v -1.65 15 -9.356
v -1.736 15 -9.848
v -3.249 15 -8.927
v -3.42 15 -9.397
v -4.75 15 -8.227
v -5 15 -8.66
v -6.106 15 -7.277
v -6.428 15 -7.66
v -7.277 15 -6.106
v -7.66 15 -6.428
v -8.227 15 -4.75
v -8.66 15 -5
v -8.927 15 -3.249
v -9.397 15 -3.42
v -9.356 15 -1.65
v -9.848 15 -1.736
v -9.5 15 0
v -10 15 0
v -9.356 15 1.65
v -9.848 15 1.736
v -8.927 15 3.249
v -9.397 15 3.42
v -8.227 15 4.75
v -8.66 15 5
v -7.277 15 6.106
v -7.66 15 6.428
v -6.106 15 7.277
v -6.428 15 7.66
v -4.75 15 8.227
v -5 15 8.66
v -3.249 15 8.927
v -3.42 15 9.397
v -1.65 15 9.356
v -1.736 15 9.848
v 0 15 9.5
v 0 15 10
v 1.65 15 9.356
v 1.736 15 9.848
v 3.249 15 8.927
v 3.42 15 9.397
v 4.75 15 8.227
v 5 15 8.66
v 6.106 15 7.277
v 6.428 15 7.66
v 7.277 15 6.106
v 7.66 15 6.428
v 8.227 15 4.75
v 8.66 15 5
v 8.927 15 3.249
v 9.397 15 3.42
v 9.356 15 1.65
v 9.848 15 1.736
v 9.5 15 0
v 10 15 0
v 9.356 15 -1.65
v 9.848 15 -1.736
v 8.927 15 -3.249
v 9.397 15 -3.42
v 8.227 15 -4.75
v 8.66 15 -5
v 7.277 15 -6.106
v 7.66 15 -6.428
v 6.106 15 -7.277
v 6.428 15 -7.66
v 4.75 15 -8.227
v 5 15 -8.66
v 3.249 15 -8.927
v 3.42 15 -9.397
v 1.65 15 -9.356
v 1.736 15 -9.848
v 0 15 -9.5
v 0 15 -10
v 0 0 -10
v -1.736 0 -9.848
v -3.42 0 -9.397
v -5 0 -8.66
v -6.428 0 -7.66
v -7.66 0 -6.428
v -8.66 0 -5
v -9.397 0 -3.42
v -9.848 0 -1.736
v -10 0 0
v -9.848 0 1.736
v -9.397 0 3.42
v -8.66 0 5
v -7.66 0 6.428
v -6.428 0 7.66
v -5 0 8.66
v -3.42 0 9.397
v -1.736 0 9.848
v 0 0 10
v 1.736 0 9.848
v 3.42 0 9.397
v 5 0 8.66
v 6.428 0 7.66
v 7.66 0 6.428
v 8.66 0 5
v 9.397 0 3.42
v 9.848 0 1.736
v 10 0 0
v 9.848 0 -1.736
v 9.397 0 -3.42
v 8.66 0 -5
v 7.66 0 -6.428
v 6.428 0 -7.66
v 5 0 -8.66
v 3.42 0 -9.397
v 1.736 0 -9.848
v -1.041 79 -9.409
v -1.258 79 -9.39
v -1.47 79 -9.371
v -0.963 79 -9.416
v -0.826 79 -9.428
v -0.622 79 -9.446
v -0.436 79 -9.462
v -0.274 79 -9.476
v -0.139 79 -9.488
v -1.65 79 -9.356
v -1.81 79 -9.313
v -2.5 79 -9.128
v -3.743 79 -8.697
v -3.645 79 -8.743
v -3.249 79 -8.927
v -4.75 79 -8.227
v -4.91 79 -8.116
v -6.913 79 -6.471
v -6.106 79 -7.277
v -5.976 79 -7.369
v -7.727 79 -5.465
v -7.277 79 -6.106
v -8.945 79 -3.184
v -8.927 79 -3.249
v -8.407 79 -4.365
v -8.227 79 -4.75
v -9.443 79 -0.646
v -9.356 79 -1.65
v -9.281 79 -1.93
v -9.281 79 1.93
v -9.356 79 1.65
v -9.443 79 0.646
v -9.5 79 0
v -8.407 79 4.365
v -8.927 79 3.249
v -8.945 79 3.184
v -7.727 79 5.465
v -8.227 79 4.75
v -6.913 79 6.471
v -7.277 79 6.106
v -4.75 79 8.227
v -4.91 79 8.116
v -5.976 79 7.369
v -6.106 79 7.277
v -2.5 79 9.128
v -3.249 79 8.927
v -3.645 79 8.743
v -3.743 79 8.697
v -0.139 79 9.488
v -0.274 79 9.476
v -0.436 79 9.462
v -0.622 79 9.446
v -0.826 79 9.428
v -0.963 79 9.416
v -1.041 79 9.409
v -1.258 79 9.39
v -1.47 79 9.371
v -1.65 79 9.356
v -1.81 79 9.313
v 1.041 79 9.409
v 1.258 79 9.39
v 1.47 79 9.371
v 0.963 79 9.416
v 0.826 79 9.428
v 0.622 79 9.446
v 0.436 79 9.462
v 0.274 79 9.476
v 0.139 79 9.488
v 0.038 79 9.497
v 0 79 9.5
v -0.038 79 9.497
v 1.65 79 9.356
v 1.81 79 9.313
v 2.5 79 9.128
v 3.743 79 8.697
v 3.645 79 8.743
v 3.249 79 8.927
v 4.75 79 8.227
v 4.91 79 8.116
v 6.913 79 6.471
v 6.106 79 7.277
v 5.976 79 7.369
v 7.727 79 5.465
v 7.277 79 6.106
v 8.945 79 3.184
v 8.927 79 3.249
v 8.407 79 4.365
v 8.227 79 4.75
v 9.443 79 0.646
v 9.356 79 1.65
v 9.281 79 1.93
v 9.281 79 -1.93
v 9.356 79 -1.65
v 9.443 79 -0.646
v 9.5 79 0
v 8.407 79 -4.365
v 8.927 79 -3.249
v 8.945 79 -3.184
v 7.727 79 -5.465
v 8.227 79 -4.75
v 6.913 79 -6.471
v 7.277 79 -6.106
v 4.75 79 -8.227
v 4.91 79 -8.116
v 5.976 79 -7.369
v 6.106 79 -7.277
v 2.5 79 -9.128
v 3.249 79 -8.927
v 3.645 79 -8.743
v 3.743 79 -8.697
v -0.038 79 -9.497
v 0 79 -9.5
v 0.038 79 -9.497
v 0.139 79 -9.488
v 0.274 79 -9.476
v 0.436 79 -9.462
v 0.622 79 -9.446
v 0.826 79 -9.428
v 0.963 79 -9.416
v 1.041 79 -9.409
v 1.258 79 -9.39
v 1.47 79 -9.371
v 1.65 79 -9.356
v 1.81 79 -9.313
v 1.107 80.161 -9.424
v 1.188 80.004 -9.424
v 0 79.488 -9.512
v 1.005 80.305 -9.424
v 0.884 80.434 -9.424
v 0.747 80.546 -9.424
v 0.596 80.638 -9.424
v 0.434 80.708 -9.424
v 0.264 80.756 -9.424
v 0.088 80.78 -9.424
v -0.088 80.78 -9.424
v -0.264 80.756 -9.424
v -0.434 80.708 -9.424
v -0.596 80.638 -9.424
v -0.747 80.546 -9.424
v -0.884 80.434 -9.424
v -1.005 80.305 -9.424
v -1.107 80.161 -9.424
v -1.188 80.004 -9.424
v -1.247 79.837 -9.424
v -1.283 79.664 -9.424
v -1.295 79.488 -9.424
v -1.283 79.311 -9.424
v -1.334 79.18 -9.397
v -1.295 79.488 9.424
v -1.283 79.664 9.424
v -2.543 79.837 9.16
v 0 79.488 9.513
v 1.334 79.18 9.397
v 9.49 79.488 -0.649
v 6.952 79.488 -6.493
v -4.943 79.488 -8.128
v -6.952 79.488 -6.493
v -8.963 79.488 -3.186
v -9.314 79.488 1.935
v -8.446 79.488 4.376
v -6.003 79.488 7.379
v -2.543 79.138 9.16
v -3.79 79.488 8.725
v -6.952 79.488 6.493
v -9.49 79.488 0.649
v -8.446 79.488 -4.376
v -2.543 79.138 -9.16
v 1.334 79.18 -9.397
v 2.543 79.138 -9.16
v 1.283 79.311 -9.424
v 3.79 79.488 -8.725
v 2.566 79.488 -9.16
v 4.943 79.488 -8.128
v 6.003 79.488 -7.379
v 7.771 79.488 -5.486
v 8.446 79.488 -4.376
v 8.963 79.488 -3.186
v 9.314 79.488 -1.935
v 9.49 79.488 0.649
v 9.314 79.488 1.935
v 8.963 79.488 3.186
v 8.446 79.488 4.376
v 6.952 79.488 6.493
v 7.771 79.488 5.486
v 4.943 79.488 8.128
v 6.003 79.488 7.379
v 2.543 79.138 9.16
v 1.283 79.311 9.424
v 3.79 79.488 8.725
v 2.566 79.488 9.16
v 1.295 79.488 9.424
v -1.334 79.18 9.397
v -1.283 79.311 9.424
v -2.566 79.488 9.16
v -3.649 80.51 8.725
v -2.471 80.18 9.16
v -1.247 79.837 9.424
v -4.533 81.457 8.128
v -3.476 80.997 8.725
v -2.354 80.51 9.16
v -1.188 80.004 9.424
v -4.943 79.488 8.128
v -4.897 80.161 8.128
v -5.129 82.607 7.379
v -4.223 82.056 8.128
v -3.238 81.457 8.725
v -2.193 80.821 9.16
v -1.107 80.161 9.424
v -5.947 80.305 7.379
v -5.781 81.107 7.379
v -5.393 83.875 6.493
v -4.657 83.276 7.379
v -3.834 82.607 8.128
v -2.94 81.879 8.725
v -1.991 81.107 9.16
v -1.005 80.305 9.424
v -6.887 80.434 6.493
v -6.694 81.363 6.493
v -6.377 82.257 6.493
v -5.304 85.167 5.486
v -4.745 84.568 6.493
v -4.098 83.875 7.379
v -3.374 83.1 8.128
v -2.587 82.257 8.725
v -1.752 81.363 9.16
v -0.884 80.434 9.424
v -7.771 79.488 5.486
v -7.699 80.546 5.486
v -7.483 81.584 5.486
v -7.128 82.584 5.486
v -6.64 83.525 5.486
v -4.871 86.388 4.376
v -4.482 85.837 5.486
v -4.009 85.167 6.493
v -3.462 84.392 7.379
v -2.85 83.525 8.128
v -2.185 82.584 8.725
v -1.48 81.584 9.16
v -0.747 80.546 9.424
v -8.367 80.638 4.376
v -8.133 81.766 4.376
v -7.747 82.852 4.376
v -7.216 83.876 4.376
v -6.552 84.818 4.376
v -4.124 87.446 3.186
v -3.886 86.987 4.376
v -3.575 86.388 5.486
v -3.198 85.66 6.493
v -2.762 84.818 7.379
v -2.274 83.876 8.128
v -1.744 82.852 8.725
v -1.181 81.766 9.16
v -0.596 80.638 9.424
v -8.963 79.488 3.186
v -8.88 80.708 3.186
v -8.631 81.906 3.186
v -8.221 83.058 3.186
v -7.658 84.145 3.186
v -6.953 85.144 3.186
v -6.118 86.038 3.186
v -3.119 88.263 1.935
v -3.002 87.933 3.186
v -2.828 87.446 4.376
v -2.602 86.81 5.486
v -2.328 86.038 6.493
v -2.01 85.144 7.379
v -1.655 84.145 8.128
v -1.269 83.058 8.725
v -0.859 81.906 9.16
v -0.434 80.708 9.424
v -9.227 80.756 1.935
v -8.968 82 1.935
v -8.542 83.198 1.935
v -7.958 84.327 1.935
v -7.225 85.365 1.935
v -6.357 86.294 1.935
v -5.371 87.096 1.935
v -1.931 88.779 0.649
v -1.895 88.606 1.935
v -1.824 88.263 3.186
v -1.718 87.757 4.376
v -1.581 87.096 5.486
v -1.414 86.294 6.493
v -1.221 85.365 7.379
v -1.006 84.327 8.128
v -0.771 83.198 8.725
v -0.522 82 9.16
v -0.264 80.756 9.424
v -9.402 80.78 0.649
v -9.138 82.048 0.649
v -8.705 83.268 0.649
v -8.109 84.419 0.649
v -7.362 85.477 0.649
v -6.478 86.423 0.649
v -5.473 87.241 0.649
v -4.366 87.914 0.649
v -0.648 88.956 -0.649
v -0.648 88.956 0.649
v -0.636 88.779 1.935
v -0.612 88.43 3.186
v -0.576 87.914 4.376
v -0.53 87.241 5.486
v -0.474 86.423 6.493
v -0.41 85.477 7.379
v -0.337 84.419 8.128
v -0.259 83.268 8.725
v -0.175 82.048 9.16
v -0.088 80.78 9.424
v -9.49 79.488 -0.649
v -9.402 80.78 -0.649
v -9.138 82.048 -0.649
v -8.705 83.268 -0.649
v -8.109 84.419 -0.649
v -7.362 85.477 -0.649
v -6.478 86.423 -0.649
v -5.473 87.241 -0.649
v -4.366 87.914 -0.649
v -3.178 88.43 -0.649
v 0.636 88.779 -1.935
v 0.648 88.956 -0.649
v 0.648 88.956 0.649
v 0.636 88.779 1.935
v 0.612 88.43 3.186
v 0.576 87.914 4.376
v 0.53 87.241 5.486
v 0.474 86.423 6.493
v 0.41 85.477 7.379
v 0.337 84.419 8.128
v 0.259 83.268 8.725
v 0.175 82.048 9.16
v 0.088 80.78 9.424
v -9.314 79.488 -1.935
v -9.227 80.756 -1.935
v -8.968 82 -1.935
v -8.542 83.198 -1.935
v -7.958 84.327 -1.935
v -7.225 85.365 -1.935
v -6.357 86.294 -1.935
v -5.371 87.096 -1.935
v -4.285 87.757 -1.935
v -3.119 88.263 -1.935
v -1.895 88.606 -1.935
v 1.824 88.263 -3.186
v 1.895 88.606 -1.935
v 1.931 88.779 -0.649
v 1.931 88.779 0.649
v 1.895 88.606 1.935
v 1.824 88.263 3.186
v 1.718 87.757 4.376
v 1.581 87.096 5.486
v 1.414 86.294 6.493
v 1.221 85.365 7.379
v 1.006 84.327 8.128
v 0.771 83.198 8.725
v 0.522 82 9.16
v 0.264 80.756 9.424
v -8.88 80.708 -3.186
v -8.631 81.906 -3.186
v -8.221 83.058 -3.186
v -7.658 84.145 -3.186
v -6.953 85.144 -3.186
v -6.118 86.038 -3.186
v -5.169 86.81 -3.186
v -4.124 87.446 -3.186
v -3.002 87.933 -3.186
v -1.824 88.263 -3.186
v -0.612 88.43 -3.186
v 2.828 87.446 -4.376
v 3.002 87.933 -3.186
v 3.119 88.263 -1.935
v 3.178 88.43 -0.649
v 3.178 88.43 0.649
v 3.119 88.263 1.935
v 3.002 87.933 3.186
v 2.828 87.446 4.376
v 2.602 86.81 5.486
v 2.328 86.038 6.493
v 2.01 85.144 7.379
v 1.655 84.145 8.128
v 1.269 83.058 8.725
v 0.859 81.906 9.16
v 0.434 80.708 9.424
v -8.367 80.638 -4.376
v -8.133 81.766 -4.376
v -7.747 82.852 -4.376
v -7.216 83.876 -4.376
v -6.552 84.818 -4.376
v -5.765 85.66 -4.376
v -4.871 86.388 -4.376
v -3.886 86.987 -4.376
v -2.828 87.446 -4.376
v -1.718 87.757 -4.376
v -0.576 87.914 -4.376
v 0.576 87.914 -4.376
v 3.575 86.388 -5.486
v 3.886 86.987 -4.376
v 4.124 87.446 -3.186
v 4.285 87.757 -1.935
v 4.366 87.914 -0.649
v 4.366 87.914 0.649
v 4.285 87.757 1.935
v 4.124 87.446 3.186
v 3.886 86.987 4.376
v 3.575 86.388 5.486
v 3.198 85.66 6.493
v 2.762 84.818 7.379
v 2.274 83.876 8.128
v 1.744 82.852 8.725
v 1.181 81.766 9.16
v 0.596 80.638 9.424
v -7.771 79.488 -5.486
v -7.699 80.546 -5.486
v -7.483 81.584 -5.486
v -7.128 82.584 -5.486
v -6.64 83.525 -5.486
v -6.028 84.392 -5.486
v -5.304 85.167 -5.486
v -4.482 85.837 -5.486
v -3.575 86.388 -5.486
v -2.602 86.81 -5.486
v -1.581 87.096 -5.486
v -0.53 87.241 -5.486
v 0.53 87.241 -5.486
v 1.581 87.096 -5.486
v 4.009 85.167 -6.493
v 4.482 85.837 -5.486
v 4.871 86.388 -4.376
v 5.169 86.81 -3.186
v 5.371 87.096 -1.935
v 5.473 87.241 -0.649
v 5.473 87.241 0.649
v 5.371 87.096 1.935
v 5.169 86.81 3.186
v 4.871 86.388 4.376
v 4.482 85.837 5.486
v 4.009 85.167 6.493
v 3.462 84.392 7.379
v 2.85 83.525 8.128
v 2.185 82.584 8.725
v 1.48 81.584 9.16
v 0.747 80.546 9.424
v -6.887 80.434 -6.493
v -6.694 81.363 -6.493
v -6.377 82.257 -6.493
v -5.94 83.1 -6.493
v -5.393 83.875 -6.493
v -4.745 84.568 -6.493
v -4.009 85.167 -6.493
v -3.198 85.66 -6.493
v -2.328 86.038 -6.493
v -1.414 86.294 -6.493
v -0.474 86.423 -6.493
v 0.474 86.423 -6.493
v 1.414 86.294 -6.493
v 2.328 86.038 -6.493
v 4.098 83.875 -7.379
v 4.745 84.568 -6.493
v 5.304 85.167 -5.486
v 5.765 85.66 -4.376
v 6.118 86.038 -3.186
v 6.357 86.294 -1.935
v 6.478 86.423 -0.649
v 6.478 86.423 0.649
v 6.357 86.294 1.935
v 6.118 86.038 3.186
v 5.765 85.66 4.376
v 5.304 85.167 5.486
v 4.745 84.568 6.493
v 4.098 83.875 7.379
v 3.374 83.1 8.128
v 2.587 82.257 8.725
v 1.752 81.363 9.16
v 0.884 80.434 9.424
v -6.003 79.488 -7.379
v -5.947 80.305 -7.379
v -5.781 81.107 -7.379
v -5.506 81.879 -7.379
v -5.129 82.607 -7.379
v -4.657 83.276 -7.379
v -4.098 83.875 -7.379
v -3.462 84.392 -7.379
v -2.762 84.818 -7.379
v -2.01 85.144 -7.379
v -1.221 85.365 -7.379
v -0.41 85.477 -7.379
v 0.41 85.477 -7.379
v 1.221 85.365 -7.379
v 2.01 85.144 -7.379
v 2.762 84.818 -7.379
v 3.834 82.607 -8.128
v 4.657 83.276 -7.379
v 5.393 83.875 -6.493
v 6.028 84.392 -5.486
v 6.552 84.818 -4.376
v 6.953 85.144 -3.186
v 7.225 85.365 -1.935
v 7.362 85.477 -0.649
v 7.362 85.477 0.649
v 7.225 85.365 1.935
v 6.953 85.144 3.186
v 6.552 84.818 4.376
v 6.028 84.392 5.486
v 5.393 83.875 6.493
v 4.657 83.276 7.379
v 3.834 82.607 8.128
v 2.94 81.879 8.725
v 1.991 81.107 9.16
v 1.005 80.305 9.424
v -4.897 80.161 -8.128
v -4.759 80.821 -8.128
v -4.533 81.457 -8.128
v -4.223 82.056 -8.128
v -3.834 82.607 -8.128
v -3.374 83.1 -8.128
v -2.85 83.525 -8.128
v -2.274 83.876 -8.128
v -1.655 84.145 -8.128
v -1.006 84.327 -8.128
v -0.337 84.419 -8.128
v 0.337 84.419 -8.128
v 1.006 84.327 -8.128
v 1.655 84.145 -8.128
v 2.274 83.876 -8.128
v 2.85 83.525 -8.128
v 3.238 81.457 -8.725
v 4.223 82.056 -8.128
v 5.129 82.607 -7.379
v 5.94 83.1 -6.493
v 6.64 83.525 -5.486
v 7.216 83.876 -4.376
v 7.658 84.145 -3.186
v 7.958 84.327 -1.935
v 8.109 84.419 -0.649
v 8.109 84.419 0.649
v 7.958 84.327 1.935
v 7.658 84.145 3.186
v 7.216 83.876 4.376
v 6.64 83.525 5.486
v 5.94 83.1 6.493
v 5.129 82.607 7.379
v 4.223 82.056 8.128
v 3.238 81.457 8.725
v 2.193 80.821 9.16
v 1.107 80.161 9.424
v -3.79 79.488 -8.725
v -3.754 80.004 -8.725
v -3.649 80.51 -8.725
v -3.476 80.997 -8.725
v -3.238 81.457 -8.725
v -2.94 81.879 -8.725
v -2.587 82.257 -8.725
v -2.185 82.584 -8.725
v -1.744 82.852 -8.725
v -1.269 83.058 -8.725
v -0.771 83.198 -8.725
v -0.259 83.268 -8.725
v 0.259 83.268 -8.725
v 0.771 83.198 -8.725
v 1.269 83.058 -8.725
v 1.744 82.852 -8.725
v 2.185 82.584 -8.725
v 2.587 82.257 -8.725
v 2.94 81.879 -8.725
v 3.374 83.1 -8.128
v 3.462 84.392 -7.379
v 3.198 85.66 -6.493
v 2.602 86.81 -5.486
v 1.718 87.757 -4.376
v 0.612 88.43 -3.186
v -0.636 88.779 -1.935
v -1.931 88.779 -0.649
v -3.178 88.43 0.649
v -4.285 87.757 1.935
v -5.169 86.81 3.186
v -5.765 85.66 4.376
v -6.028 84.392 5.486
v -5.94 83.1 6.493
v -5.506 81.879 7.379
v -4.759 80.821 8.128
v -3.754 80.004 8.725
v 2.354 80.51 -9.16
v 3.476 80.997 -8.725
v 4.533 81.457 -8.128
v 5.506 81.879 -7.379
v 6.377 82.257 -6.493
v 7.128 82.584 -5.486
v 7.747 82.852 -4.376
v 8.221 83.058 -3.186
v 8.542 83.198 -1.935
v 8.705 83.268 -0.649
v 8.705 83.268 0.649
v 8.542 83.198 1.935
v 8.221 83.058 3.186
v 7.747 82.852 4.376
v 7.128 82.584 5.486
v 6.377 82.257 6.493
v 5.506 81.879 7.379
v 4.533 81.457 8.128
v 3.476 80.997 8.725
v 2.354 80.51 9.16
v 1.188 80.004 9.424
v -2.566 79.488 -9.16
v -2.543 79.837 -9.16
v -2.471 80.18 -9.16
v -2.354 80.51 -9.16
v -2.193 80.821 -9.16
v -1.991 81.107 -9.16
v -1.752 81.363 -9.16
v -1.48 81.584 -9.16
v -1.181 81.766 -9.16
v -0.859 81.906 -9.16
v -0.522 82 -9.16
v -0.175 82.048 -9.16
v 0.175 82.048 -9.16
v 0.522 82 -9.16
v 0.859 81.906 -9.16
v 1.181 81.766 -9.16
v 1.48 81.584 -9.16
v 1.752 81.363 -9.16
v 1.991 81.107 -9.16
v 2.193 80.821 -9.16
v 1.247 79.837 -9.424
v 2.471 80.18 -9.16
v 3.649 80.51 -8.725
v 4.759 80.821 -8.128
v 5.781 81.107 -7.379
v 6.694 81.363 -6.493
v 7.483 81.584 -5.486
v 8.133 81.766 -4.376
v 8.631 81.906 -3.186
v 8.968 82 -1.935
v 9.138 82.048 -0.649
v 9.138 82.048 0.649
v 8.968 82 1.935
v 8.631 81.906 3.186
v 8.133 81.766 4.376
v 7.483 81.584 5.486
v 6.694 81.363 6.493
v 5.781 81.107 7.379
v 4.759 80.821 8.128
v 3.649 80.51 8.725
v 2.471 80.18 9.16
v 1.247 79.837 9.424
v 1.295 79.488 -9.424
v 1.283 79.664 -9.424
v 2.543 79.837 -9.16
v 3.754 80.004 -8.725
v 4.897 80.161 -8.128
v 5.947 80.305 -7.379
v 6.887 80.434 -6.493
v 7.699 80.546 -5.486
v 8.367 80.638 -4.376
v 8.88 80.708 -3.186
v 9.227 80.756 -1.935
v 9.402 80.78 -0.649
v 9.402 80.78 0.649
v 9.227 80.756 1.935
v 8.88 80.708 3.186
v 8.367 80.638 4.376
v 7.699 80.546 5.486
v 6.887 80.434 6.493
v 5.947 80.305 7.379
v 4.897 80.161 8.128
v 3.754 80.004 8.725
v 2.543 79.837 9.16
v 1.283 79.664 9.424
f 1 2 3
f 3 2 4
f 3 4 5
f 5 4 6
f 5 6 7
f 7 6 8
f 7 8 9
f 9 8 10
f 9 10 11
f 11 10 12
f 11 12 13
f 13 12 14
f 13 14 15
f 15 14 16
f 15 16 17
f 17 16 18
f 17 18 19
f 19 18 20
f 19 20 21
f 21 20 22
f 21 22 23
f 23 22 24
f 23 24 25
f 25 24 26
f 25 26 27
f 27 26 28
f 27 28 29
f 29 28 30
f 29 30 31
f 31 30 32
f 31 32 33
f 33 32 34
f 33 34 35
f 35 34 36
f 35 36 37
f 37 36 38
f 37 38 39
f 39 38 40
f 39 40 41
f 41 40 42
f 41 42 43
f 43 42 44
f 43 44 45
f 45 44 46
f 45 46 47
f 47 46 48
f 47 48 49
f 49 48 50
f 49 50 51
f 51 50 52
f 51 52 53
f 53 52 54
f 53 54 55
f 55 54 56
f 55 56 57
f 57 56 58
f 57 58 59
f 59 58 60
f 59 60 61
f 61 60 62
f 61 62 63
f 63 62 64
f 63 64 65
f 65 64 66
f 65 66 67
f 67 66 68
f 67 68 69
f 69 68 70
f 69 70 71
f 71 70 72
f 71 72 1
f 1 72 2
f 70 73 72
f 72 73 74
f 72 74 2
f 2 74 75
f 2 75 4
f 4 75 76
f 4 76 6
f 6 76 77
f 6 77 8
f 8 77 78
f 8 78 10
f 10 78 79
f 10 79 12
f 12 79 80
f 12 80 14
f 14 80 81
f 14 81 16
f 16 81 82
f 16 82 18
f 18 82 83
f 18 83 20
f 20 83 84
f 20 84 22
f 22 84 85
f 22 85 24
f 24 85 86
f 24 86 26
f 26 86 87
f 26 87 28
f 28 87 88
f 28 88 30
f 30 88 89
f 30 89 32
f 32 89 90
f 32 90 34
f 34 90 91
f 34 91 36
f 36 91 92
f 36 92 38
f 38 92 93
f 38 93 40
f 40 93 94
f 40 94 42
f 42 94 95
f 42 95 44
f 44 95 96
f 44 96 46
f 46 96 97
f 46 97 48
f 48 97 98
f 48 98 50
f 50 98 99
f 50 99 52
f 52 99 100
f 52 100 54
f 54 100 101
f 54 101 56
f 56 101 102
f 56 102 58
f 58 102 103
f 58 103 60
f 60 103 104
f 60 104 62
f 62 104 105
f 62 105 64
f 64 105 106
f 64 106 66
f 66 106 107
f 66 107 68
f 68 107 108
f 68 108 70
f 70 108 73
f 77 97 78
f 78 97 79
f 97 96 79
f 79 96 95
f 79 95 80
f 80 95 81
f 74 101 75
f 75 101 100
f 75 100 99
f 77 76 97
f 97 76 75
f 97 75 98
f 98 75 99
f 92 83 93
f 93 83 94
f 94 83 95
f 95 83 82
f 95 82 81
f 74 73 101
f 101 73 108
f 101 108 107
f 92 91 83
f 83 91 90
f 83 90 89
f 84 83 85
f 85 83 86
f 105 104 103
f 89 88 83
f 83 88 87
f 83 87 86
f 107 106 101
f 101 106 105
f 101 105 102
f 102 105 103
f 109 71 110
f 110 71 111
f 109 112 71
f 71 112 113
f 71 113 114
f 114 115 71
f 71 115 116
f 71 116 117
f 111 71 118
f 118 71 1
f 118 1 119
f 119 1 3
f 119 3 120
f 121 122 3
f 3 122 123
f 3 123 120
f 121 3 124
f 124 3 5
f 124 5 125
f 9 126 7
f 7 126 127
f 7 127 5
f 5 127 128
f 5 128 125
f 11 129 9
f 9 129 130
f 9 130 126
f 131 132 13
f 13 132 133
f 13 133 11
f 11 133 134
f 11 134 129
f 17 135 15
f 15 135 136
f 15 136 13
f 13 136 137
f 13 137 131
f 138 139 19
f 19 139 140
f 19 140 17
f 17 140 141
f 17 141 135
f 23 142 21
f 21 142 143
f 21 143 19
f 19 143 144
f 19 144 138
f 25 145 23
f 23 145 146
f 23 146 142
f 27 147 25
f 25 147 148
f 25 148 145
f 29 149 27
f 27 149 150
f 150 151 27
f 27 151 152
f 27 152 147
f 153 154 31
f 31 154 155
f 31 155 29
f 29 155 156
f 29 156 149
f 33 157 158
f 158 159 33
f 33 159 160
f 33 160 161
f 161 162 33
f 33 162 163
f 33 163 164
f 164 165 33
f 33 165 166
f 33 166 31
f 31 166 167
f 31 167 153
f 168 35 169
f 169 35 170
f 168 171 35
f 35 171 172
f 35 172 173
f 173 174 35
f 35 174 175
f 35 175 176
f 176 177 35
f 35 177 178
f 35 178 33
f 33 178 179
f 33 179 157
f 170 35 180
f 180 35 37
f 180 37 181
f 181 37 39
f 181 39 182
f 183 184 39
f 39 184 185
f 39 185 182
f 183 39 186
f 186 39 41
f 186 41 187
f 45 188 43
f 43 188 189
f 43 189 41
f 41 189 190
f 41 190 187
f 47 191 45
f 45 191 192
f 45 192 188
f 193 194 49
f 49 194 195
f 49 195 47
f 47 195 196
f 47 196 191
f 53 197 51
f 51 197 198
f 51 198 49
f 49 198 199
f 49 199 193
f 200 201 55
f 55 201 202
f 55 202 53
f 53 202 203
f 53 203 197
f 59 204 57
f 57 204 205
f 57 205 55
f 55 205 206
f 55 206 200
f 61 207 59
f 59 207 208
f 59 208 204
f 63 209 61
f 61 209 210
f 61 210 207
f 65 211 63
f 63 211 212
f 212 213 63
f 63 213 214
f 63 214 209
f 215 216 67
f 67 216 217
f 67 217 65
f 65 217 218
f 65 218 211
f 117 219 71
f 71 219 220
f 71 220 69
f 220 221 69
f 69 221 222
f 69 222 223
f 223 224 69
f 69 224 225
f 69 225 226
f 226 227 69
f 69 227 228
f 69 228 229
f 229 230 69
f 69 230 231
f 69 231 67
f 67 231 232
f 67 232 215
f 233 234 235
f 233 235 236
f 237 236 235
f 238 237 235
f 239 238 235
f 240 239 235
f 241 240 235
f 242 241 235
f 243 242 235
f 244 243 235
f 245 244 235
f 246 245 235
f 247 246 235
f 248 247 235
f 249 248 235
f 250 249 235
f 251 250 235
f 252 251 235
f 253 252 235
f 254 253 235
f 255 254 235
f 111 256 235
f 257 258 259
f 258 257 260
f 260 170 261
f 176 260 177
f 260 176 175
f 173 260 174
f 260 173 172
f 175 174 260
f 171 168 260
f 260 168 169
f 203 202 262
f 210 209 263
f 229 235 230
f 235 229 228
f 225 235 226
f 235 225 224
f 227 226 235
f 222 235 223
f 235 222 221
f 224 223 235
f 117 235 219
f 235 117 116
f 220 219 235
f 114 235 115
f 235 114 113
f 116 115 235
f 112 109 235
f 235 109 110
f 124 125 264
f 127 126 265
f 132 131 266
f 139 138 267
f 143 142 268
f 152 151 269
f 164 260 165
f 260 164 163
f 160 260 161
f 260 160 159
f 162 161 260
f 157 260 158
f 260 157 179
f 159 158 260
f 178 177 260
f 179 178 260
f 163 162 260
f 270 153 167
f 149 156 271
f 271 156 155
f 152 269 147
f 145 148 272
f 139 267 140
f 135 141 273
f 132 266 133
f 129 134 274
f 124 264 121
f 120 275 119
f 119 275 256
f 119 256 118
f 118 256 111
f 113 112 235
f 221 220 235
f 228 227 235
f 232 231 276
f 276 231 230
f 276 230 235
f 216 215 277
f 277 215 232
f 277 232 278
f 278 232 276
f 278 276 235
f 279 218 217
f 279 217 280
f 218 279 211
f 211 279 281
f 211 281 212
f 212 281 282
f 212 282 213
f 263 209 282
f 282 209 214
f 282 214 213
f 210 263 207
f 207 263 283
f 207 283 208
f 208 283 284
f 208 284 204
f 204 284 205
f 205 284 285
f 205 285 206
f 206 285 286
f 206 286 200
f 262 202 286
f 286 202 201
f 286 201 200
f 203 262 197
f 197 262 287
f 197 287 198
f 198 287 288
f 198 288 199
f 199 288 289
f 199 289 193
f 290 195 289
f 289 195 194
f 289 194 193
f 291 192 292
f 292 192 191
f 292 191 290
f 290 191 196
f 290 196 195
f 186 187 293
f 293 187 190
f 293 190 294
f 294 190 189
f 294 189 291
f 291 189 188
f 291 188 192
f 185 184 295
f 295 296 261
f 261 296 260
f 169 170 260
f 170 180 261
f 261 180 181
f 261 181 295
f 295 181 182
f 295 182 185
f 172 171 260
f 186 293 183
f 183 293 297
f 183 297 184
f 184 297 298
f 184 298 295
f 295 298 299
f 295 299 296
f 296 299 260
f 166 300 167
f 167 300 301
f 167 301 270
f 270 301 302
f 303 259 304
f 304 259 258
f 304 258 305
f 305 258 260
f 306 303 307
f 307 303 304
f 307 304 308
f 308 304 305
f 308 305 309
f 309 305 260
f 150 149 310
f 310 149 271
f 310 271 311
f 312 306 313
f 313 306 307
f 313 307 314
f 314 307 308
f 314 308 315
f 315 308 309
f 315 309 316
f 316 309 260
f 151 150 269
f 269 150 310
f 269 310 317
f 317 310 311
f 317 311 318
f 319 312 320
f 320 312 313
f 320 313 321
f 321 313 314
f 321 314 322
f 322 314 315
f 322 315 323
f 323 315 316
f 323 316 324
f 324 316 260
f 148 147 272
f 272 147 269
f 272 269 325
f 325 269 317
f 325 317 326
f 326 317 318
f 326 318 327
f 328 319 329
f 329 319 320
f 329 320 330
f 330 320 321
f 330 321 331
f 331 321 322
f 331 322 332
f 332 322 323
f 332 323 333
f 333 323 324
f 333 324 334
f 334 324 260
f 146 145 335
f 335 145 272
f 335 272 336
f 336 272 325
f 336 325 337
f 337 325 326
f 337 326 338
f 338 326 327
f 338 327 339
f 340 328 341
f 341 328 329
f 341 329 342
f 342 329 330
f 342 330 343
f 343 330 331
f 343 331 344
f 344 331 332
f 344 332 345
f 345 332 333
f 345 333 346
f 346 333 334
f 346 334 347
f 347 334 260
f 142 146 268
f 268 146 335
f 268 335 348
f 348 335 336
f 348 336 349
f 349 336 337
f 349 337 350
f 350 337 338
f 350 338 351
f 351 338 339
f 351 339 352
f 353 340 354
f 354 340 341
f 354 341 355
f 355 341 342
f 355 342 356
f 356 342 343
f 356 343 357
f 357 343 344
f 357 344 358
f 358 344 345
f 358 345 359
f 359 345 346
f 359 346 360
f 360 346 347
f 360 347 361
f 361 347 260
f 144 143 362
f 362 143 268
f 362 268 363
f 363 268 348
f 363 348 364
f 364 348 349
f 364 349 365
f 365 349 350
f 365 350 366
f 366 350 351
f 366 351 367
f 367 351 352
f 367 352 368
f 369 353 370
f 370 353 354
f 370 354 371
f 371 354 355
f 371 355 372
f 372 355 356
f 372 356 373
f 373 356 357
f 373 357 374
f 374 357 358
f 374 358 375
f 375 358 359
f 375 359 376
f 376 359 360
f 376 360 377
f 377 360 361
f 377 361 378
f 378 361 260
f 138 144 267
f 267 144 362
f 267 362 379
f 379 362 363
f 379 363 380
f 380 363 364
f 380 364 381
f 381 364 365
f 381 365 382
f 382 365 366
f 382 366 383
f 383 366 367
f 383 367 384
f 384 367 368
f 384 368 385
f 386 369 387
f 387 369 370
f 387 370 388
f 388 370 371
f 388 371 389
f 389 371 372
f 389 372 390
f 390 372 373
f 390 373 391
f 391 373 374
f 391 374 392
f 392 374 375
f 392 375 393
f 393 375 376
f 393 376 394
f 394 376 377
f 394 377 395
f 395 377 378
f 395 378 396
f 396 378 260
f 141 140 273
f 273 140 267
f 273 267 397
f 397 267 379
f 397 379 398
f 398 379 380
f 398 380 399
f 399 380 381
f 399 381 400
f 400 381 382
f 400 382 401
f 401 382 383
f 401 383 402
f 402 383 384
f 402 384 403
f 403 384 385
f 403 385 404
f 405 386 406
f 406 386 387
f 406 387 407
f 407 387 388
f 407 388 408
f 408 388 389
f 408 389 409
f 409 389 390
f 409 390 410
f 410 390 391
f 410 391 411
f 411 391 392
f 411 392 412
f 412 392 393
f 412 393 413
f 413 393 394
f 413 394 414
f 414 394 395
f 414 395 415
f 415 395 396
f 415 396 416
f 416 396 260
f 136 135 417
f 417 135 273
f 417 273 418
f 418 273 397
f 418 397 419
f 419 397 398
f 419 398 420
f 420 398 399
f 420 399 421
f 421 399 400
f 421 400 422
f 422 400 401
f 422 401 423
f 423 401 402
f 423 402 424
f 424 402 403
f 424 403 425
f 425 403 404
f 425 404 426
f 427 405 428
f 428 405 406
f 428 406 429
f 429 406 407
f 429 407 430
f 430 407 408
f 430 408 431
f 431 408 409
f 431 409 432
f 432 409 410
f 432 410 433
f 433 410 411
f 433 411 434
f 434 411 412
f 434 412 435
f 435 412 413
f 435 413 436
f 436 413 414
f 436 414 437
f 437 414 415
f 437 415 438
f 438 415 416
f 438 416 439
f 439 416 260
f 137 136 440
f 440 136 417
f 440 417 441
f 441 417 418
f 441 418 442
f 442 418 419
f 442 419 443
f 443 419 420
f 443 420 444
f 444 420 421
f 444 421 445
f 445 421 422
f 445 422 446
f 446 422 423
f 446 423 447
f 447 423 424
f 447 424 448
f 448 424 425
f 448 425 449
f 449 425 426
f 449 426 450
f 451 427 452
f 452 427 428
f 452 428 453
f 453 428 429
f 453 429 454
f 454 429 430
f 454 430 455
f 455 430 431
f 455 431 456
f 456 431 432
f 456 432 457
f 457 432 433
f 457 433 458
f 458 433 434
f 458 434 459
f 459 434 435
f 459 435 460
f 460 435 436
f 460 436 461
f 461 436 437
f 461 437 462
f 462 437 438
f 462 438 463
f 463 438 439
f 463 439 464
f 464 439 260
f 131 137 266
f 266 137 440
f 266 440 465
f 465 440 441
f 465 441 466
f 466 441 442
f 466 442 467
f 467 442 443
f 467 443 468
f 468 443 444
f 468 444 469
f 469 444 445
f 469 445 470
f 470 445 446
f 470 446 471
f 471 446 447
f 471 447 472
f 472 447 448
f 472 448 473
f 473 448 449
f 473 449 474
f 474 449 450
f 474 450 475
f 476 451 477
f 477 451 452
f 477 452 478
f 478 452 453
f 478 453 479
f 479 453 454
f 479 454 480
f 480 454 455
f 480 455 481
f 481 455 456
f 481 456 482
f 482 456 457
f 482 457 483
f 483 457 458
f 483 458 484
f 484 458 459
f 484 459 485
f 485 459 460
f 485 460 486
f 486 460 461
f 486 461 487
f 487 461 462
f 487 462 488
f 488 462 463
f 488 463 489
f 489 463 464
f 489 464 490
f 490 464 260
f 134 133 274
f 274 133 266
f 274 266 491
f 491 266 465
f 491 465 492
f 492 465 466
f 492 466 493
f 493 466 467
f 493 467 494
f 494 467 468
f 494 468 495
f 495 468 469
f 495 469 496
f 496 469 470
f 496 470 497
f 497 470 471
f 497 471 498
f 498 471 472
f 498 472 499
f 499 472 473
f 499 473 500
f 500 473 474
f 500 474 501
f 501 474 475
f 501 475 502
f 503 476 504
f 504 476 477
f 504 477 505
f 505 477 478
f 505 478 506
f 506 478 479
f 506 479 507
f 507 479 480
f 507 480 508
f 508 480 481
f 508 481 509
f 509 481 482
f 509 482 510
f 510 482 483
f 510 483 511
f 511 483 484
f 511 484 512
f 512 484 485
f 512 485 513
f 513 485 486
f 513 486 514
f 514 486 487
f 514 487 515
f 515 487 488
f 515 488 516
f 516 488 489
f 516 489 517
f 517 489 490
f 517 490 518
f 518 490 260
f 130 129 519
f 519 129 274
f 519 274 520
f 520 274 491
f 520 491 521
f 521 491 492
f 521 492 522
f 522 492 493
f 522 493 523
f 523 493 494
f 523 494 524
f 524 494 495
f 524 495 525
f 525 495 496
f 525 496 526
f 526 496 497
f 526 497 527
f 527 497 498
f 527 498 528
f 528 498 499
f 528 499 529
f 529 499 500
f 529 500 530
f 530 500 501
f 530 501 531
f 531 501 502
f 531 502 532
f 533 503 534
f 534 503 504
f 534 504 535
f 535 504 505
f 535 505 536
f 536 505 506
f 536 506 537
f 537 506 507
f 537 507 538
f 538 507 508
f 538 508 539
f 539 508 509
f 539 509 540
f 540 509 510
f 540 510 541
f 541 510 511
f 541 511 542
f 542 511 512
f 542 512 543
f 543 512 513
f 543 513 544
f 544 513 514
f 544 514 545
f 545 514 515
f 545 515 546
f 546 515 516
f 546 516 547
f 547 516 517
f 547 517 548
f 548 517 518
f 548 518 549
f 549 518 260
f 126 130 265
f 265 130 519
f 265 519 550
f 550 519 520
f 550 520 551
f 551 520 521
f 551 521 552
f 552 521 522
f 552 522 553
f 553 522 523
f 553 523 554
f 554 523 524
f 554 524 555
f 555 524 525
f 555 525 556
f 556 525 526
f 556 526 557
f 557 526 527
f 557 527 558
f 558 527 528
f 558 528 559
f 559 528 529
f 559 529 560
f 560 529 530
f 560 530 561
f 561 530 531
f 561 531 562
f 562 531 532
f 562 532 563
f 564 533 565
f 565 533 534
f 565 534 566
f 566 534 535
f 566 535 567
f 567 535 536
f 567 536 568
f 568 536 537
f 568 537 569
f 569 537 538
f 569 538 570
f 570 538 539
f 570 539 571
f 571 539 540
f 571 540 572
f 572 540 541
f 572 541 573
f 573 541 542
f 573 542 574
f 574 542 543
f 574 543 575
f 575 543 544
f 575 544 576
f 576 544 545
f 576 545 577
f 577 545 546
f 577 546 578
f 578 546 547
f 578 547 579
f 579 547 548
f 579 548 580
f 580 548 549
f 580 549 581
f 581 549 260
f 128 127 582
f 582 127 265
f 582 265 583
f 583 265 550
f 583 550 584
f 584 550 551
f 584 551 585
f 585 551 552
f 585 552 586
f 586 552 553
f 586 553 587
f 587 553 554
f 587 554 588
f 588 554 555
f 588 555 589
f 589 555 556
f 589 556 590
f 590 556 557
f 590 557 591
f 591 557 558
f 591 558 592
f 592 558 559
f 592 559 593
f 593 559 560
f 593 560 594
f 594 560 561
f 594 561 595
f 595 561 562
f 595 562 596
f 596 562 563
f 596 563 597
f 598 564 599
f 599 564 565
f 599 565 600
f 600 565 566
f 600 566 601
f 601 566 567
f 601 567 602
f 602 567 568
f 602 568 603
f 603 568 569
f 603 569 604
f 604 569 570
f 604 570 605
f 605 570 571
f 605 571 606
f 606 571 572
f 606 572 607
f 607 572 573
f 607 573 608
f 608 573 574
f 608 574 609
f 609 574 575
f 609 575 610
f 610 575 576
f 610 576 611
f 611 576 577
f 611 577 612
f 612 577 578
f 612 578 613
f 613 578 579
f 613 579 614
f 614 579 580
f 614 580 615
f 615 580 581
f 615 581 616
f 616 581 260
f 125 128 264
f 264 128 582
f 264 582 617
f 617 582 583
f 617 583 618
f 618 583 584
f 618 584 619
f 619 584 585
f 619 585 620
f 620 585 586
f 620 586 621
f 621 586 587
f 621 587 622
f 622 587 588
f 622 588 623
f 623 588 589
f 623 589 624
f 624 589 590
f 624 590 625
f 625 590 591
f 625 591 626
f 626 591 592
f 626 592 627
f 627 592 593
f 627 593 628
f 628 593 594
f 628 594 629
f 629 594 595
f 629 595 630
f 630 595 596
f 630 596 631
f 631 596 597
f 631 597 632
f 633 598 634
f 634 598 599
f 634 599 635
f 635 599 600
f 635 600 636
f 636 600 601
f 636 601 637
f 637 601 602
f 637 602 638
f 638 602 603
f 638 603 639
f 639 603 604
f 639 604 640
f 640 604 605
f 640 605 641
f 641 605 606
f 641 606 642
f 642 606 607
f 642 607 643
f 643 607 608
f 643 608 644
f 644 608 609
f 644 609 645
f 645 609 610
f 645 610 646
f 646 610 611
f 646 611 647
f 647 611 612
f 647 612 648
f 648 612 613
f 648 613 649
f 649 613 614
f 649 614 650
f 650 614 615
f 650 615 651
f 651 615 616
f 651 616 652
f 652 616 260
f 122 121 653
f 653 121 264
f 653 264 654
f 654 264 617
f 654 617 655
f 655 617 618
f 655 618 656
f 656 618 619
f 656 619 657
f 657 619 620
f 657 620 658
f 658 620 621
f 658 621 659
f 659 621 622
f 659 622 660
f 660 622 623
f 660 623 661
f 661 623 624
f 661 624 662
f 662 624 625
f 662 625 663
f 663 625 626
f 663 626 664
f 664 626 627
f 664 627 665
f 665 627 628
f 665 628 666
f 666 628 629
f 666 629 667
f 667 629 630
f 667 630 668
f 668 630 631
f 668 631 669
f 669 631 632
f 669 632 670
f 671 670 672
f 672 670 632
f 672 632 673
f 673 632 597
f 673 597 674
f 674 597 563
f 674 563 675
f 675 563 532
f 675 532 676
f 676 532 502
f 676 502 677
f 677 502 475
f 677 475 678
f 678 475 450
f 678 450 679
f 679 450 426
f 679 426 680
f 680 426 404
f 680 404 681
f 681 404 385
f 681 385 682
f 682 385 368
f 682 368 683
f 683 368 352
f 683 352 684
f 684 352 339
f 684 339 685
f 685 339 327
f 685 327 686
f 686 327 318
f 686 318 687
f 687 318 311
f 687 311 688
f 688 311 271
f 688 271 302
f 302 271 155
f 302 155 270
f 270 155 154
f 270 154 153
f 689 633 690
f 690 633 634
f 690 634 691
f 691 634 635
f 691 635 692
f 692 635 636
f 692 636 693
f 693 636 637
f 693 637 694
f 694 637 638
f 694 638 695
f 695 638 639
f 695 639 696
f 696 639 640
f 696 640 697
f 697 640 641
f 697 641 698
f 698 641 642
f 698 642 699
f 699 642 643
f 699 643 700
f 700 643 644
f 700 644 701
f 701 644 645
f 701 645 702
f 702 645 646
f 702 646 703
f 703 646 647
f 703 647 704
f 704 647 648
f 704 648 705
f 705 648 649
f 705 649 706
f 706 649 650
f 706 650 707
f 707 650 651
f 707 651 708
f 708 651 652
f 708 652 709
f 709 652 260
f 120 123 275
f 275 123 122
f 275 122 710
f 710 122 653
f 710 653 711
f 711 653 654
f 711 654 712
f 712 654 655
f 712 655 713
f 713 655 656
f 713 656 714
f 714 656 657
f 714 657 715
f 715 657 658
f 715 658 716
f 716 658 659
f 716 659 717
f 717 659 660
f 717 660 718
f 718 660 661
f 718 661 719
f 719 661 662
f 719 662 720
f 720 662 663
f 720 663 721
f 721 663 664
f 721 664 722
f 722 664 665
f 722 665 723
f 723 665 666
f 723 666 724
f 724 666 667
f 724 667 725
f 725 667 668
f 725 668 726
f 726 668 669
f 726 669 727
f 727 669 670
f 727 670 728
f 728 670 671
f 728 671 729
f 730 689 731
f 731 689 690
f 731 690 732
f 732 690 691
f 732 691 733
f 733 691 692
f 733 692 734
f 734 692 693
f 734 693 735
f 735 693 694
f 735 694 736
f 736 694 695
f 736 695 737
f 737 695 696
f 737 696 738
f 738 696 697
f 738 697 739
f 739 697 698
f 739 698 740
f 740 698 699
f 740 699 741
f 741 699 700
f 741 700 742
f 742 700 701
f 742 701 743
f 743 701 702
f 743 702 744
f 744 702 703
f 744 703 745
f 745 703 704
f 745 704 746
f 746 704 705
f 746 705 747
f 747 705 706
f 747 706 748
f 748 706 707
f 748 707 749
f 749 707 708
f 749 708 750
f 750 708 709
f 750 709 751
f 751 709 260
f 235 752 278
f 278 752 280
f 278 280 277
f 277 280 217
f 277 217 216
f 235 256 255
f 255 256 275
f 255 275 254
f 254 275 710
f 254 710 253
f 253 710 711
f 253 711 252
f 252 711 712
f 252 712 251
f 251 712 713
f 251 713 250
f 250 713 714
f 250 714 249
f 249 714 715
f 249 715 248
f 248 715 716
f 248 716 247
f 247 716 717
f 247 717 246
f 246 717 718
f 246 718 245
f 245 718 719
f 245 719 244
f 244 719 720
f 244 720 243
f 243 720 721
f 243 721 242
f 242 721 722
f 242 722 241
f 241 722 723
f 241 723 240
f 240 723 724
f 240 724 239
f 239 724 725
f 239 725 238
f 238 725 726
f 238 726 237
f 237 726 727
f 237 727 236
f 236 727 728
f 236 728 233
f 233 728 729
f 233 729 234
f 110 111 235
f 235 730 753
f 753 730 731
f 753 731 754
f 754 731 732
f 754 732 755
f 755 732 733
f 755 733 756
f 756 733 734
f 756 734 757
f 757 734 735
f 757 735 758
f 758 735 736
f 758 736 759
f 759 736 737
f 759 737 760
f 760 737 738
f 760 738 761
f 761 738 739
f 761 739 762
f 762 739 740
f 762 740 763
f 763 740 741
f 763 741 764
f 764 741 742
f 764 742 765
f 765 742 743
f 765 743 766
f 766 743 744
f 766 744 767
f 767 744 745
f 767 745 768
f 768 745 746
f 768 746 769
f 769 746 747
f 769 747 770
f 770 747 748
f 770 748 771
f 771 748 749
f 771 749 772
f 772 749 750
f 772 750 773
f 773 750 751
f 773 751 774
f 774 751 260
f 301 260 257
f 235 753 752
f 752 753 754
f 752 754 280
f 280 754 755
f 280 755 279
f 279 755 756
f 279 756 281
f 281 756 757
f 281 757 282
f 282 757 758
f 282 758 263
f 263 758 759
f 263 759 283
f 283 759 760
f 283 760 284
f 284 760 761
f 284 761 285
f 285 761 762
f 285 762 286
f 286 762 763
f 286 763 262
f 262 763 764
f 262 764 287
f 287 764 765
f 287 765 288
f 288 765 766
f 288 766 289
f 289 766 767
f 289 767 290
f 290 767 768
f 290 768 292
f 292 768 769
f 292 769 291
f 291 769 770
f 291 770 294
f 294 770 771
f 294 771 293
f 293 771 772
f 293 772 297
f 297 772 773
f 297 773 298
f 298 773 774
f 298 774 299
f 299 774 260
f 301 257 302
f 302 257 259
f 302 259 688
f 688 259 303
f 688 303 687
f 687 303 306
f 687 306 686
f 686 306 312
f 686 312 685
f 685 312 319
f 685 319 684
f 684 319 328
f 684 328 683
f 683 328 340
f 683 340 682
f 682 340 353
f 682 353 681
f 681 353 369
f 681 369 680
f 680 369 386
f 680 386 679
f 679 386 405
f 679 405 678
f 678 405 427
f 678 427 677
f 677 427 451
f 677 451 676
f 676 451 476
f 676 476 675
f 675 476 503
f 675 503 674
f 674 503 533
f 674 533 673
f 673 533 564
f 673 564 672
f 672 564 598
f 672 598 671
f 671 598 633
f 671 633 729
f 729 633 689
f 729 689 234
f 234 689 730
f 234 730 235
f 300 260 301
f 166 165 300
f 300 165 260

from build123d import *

# Parameters (mm, degrees)
SKETCH1_R           = 10
BOSS_EXTRUDE1_DEPTH = 15
BOSS_EXTRUDE3_START = -15
SKETCH3_R           = 9.5
BOSS_EXTRUDE3_DEPTH = 64
DOME1_FACE_RADIUS   = 9.5
DOME1_HEIGHT        = 10


with BuildPart() as part:
    # Sketch1 → Boss-Extrude1 (new body)
    with BuildSketch(Plane(origin=(0, 0, 0), x_dir=(1, 0, 0), z_dir=(0, 1, 0))):
        Circle(SKETCH1_R)
    extrude(amount=BOSS_EXTRUDE1_DEPTH)

    # Sketch3 → Boss-Extrude3 (add)
    with BuildSketch(Plane.XZ.offset(BOSS_EXTRUDE3_START)):
        Circle(SKETCH3_R)
    extrude(amount=-BOSS_EXTRUDE3_DEPTH)

    # Dome1: a dome of height H over a round flat face of radius A is a cap of a sphere of radius (A * A + H * H) / (2 * H)
    dome1_r = (DOME1_FACE_RADIUS * DOME1_FACE_RADIUS + DOME1_HEIGHT * DOME1_HEIGHT) / (2 * DOME1_HEIGHT)
    dome1_base = Plane((0, 79, 0), z_dir=(0, 1, 0))
    with Locations(dome1_base.offset(DOME1_HEIGHT - dome1_r)):
        dome1_ball = Sphere(dome1_r, mode=Mode.PRIVATE)
    add(split(dome1_ball, bisect_by=dome1_base, keep=Keep.TOP, mode=Mode.PRIVATE))


solid = part.part
